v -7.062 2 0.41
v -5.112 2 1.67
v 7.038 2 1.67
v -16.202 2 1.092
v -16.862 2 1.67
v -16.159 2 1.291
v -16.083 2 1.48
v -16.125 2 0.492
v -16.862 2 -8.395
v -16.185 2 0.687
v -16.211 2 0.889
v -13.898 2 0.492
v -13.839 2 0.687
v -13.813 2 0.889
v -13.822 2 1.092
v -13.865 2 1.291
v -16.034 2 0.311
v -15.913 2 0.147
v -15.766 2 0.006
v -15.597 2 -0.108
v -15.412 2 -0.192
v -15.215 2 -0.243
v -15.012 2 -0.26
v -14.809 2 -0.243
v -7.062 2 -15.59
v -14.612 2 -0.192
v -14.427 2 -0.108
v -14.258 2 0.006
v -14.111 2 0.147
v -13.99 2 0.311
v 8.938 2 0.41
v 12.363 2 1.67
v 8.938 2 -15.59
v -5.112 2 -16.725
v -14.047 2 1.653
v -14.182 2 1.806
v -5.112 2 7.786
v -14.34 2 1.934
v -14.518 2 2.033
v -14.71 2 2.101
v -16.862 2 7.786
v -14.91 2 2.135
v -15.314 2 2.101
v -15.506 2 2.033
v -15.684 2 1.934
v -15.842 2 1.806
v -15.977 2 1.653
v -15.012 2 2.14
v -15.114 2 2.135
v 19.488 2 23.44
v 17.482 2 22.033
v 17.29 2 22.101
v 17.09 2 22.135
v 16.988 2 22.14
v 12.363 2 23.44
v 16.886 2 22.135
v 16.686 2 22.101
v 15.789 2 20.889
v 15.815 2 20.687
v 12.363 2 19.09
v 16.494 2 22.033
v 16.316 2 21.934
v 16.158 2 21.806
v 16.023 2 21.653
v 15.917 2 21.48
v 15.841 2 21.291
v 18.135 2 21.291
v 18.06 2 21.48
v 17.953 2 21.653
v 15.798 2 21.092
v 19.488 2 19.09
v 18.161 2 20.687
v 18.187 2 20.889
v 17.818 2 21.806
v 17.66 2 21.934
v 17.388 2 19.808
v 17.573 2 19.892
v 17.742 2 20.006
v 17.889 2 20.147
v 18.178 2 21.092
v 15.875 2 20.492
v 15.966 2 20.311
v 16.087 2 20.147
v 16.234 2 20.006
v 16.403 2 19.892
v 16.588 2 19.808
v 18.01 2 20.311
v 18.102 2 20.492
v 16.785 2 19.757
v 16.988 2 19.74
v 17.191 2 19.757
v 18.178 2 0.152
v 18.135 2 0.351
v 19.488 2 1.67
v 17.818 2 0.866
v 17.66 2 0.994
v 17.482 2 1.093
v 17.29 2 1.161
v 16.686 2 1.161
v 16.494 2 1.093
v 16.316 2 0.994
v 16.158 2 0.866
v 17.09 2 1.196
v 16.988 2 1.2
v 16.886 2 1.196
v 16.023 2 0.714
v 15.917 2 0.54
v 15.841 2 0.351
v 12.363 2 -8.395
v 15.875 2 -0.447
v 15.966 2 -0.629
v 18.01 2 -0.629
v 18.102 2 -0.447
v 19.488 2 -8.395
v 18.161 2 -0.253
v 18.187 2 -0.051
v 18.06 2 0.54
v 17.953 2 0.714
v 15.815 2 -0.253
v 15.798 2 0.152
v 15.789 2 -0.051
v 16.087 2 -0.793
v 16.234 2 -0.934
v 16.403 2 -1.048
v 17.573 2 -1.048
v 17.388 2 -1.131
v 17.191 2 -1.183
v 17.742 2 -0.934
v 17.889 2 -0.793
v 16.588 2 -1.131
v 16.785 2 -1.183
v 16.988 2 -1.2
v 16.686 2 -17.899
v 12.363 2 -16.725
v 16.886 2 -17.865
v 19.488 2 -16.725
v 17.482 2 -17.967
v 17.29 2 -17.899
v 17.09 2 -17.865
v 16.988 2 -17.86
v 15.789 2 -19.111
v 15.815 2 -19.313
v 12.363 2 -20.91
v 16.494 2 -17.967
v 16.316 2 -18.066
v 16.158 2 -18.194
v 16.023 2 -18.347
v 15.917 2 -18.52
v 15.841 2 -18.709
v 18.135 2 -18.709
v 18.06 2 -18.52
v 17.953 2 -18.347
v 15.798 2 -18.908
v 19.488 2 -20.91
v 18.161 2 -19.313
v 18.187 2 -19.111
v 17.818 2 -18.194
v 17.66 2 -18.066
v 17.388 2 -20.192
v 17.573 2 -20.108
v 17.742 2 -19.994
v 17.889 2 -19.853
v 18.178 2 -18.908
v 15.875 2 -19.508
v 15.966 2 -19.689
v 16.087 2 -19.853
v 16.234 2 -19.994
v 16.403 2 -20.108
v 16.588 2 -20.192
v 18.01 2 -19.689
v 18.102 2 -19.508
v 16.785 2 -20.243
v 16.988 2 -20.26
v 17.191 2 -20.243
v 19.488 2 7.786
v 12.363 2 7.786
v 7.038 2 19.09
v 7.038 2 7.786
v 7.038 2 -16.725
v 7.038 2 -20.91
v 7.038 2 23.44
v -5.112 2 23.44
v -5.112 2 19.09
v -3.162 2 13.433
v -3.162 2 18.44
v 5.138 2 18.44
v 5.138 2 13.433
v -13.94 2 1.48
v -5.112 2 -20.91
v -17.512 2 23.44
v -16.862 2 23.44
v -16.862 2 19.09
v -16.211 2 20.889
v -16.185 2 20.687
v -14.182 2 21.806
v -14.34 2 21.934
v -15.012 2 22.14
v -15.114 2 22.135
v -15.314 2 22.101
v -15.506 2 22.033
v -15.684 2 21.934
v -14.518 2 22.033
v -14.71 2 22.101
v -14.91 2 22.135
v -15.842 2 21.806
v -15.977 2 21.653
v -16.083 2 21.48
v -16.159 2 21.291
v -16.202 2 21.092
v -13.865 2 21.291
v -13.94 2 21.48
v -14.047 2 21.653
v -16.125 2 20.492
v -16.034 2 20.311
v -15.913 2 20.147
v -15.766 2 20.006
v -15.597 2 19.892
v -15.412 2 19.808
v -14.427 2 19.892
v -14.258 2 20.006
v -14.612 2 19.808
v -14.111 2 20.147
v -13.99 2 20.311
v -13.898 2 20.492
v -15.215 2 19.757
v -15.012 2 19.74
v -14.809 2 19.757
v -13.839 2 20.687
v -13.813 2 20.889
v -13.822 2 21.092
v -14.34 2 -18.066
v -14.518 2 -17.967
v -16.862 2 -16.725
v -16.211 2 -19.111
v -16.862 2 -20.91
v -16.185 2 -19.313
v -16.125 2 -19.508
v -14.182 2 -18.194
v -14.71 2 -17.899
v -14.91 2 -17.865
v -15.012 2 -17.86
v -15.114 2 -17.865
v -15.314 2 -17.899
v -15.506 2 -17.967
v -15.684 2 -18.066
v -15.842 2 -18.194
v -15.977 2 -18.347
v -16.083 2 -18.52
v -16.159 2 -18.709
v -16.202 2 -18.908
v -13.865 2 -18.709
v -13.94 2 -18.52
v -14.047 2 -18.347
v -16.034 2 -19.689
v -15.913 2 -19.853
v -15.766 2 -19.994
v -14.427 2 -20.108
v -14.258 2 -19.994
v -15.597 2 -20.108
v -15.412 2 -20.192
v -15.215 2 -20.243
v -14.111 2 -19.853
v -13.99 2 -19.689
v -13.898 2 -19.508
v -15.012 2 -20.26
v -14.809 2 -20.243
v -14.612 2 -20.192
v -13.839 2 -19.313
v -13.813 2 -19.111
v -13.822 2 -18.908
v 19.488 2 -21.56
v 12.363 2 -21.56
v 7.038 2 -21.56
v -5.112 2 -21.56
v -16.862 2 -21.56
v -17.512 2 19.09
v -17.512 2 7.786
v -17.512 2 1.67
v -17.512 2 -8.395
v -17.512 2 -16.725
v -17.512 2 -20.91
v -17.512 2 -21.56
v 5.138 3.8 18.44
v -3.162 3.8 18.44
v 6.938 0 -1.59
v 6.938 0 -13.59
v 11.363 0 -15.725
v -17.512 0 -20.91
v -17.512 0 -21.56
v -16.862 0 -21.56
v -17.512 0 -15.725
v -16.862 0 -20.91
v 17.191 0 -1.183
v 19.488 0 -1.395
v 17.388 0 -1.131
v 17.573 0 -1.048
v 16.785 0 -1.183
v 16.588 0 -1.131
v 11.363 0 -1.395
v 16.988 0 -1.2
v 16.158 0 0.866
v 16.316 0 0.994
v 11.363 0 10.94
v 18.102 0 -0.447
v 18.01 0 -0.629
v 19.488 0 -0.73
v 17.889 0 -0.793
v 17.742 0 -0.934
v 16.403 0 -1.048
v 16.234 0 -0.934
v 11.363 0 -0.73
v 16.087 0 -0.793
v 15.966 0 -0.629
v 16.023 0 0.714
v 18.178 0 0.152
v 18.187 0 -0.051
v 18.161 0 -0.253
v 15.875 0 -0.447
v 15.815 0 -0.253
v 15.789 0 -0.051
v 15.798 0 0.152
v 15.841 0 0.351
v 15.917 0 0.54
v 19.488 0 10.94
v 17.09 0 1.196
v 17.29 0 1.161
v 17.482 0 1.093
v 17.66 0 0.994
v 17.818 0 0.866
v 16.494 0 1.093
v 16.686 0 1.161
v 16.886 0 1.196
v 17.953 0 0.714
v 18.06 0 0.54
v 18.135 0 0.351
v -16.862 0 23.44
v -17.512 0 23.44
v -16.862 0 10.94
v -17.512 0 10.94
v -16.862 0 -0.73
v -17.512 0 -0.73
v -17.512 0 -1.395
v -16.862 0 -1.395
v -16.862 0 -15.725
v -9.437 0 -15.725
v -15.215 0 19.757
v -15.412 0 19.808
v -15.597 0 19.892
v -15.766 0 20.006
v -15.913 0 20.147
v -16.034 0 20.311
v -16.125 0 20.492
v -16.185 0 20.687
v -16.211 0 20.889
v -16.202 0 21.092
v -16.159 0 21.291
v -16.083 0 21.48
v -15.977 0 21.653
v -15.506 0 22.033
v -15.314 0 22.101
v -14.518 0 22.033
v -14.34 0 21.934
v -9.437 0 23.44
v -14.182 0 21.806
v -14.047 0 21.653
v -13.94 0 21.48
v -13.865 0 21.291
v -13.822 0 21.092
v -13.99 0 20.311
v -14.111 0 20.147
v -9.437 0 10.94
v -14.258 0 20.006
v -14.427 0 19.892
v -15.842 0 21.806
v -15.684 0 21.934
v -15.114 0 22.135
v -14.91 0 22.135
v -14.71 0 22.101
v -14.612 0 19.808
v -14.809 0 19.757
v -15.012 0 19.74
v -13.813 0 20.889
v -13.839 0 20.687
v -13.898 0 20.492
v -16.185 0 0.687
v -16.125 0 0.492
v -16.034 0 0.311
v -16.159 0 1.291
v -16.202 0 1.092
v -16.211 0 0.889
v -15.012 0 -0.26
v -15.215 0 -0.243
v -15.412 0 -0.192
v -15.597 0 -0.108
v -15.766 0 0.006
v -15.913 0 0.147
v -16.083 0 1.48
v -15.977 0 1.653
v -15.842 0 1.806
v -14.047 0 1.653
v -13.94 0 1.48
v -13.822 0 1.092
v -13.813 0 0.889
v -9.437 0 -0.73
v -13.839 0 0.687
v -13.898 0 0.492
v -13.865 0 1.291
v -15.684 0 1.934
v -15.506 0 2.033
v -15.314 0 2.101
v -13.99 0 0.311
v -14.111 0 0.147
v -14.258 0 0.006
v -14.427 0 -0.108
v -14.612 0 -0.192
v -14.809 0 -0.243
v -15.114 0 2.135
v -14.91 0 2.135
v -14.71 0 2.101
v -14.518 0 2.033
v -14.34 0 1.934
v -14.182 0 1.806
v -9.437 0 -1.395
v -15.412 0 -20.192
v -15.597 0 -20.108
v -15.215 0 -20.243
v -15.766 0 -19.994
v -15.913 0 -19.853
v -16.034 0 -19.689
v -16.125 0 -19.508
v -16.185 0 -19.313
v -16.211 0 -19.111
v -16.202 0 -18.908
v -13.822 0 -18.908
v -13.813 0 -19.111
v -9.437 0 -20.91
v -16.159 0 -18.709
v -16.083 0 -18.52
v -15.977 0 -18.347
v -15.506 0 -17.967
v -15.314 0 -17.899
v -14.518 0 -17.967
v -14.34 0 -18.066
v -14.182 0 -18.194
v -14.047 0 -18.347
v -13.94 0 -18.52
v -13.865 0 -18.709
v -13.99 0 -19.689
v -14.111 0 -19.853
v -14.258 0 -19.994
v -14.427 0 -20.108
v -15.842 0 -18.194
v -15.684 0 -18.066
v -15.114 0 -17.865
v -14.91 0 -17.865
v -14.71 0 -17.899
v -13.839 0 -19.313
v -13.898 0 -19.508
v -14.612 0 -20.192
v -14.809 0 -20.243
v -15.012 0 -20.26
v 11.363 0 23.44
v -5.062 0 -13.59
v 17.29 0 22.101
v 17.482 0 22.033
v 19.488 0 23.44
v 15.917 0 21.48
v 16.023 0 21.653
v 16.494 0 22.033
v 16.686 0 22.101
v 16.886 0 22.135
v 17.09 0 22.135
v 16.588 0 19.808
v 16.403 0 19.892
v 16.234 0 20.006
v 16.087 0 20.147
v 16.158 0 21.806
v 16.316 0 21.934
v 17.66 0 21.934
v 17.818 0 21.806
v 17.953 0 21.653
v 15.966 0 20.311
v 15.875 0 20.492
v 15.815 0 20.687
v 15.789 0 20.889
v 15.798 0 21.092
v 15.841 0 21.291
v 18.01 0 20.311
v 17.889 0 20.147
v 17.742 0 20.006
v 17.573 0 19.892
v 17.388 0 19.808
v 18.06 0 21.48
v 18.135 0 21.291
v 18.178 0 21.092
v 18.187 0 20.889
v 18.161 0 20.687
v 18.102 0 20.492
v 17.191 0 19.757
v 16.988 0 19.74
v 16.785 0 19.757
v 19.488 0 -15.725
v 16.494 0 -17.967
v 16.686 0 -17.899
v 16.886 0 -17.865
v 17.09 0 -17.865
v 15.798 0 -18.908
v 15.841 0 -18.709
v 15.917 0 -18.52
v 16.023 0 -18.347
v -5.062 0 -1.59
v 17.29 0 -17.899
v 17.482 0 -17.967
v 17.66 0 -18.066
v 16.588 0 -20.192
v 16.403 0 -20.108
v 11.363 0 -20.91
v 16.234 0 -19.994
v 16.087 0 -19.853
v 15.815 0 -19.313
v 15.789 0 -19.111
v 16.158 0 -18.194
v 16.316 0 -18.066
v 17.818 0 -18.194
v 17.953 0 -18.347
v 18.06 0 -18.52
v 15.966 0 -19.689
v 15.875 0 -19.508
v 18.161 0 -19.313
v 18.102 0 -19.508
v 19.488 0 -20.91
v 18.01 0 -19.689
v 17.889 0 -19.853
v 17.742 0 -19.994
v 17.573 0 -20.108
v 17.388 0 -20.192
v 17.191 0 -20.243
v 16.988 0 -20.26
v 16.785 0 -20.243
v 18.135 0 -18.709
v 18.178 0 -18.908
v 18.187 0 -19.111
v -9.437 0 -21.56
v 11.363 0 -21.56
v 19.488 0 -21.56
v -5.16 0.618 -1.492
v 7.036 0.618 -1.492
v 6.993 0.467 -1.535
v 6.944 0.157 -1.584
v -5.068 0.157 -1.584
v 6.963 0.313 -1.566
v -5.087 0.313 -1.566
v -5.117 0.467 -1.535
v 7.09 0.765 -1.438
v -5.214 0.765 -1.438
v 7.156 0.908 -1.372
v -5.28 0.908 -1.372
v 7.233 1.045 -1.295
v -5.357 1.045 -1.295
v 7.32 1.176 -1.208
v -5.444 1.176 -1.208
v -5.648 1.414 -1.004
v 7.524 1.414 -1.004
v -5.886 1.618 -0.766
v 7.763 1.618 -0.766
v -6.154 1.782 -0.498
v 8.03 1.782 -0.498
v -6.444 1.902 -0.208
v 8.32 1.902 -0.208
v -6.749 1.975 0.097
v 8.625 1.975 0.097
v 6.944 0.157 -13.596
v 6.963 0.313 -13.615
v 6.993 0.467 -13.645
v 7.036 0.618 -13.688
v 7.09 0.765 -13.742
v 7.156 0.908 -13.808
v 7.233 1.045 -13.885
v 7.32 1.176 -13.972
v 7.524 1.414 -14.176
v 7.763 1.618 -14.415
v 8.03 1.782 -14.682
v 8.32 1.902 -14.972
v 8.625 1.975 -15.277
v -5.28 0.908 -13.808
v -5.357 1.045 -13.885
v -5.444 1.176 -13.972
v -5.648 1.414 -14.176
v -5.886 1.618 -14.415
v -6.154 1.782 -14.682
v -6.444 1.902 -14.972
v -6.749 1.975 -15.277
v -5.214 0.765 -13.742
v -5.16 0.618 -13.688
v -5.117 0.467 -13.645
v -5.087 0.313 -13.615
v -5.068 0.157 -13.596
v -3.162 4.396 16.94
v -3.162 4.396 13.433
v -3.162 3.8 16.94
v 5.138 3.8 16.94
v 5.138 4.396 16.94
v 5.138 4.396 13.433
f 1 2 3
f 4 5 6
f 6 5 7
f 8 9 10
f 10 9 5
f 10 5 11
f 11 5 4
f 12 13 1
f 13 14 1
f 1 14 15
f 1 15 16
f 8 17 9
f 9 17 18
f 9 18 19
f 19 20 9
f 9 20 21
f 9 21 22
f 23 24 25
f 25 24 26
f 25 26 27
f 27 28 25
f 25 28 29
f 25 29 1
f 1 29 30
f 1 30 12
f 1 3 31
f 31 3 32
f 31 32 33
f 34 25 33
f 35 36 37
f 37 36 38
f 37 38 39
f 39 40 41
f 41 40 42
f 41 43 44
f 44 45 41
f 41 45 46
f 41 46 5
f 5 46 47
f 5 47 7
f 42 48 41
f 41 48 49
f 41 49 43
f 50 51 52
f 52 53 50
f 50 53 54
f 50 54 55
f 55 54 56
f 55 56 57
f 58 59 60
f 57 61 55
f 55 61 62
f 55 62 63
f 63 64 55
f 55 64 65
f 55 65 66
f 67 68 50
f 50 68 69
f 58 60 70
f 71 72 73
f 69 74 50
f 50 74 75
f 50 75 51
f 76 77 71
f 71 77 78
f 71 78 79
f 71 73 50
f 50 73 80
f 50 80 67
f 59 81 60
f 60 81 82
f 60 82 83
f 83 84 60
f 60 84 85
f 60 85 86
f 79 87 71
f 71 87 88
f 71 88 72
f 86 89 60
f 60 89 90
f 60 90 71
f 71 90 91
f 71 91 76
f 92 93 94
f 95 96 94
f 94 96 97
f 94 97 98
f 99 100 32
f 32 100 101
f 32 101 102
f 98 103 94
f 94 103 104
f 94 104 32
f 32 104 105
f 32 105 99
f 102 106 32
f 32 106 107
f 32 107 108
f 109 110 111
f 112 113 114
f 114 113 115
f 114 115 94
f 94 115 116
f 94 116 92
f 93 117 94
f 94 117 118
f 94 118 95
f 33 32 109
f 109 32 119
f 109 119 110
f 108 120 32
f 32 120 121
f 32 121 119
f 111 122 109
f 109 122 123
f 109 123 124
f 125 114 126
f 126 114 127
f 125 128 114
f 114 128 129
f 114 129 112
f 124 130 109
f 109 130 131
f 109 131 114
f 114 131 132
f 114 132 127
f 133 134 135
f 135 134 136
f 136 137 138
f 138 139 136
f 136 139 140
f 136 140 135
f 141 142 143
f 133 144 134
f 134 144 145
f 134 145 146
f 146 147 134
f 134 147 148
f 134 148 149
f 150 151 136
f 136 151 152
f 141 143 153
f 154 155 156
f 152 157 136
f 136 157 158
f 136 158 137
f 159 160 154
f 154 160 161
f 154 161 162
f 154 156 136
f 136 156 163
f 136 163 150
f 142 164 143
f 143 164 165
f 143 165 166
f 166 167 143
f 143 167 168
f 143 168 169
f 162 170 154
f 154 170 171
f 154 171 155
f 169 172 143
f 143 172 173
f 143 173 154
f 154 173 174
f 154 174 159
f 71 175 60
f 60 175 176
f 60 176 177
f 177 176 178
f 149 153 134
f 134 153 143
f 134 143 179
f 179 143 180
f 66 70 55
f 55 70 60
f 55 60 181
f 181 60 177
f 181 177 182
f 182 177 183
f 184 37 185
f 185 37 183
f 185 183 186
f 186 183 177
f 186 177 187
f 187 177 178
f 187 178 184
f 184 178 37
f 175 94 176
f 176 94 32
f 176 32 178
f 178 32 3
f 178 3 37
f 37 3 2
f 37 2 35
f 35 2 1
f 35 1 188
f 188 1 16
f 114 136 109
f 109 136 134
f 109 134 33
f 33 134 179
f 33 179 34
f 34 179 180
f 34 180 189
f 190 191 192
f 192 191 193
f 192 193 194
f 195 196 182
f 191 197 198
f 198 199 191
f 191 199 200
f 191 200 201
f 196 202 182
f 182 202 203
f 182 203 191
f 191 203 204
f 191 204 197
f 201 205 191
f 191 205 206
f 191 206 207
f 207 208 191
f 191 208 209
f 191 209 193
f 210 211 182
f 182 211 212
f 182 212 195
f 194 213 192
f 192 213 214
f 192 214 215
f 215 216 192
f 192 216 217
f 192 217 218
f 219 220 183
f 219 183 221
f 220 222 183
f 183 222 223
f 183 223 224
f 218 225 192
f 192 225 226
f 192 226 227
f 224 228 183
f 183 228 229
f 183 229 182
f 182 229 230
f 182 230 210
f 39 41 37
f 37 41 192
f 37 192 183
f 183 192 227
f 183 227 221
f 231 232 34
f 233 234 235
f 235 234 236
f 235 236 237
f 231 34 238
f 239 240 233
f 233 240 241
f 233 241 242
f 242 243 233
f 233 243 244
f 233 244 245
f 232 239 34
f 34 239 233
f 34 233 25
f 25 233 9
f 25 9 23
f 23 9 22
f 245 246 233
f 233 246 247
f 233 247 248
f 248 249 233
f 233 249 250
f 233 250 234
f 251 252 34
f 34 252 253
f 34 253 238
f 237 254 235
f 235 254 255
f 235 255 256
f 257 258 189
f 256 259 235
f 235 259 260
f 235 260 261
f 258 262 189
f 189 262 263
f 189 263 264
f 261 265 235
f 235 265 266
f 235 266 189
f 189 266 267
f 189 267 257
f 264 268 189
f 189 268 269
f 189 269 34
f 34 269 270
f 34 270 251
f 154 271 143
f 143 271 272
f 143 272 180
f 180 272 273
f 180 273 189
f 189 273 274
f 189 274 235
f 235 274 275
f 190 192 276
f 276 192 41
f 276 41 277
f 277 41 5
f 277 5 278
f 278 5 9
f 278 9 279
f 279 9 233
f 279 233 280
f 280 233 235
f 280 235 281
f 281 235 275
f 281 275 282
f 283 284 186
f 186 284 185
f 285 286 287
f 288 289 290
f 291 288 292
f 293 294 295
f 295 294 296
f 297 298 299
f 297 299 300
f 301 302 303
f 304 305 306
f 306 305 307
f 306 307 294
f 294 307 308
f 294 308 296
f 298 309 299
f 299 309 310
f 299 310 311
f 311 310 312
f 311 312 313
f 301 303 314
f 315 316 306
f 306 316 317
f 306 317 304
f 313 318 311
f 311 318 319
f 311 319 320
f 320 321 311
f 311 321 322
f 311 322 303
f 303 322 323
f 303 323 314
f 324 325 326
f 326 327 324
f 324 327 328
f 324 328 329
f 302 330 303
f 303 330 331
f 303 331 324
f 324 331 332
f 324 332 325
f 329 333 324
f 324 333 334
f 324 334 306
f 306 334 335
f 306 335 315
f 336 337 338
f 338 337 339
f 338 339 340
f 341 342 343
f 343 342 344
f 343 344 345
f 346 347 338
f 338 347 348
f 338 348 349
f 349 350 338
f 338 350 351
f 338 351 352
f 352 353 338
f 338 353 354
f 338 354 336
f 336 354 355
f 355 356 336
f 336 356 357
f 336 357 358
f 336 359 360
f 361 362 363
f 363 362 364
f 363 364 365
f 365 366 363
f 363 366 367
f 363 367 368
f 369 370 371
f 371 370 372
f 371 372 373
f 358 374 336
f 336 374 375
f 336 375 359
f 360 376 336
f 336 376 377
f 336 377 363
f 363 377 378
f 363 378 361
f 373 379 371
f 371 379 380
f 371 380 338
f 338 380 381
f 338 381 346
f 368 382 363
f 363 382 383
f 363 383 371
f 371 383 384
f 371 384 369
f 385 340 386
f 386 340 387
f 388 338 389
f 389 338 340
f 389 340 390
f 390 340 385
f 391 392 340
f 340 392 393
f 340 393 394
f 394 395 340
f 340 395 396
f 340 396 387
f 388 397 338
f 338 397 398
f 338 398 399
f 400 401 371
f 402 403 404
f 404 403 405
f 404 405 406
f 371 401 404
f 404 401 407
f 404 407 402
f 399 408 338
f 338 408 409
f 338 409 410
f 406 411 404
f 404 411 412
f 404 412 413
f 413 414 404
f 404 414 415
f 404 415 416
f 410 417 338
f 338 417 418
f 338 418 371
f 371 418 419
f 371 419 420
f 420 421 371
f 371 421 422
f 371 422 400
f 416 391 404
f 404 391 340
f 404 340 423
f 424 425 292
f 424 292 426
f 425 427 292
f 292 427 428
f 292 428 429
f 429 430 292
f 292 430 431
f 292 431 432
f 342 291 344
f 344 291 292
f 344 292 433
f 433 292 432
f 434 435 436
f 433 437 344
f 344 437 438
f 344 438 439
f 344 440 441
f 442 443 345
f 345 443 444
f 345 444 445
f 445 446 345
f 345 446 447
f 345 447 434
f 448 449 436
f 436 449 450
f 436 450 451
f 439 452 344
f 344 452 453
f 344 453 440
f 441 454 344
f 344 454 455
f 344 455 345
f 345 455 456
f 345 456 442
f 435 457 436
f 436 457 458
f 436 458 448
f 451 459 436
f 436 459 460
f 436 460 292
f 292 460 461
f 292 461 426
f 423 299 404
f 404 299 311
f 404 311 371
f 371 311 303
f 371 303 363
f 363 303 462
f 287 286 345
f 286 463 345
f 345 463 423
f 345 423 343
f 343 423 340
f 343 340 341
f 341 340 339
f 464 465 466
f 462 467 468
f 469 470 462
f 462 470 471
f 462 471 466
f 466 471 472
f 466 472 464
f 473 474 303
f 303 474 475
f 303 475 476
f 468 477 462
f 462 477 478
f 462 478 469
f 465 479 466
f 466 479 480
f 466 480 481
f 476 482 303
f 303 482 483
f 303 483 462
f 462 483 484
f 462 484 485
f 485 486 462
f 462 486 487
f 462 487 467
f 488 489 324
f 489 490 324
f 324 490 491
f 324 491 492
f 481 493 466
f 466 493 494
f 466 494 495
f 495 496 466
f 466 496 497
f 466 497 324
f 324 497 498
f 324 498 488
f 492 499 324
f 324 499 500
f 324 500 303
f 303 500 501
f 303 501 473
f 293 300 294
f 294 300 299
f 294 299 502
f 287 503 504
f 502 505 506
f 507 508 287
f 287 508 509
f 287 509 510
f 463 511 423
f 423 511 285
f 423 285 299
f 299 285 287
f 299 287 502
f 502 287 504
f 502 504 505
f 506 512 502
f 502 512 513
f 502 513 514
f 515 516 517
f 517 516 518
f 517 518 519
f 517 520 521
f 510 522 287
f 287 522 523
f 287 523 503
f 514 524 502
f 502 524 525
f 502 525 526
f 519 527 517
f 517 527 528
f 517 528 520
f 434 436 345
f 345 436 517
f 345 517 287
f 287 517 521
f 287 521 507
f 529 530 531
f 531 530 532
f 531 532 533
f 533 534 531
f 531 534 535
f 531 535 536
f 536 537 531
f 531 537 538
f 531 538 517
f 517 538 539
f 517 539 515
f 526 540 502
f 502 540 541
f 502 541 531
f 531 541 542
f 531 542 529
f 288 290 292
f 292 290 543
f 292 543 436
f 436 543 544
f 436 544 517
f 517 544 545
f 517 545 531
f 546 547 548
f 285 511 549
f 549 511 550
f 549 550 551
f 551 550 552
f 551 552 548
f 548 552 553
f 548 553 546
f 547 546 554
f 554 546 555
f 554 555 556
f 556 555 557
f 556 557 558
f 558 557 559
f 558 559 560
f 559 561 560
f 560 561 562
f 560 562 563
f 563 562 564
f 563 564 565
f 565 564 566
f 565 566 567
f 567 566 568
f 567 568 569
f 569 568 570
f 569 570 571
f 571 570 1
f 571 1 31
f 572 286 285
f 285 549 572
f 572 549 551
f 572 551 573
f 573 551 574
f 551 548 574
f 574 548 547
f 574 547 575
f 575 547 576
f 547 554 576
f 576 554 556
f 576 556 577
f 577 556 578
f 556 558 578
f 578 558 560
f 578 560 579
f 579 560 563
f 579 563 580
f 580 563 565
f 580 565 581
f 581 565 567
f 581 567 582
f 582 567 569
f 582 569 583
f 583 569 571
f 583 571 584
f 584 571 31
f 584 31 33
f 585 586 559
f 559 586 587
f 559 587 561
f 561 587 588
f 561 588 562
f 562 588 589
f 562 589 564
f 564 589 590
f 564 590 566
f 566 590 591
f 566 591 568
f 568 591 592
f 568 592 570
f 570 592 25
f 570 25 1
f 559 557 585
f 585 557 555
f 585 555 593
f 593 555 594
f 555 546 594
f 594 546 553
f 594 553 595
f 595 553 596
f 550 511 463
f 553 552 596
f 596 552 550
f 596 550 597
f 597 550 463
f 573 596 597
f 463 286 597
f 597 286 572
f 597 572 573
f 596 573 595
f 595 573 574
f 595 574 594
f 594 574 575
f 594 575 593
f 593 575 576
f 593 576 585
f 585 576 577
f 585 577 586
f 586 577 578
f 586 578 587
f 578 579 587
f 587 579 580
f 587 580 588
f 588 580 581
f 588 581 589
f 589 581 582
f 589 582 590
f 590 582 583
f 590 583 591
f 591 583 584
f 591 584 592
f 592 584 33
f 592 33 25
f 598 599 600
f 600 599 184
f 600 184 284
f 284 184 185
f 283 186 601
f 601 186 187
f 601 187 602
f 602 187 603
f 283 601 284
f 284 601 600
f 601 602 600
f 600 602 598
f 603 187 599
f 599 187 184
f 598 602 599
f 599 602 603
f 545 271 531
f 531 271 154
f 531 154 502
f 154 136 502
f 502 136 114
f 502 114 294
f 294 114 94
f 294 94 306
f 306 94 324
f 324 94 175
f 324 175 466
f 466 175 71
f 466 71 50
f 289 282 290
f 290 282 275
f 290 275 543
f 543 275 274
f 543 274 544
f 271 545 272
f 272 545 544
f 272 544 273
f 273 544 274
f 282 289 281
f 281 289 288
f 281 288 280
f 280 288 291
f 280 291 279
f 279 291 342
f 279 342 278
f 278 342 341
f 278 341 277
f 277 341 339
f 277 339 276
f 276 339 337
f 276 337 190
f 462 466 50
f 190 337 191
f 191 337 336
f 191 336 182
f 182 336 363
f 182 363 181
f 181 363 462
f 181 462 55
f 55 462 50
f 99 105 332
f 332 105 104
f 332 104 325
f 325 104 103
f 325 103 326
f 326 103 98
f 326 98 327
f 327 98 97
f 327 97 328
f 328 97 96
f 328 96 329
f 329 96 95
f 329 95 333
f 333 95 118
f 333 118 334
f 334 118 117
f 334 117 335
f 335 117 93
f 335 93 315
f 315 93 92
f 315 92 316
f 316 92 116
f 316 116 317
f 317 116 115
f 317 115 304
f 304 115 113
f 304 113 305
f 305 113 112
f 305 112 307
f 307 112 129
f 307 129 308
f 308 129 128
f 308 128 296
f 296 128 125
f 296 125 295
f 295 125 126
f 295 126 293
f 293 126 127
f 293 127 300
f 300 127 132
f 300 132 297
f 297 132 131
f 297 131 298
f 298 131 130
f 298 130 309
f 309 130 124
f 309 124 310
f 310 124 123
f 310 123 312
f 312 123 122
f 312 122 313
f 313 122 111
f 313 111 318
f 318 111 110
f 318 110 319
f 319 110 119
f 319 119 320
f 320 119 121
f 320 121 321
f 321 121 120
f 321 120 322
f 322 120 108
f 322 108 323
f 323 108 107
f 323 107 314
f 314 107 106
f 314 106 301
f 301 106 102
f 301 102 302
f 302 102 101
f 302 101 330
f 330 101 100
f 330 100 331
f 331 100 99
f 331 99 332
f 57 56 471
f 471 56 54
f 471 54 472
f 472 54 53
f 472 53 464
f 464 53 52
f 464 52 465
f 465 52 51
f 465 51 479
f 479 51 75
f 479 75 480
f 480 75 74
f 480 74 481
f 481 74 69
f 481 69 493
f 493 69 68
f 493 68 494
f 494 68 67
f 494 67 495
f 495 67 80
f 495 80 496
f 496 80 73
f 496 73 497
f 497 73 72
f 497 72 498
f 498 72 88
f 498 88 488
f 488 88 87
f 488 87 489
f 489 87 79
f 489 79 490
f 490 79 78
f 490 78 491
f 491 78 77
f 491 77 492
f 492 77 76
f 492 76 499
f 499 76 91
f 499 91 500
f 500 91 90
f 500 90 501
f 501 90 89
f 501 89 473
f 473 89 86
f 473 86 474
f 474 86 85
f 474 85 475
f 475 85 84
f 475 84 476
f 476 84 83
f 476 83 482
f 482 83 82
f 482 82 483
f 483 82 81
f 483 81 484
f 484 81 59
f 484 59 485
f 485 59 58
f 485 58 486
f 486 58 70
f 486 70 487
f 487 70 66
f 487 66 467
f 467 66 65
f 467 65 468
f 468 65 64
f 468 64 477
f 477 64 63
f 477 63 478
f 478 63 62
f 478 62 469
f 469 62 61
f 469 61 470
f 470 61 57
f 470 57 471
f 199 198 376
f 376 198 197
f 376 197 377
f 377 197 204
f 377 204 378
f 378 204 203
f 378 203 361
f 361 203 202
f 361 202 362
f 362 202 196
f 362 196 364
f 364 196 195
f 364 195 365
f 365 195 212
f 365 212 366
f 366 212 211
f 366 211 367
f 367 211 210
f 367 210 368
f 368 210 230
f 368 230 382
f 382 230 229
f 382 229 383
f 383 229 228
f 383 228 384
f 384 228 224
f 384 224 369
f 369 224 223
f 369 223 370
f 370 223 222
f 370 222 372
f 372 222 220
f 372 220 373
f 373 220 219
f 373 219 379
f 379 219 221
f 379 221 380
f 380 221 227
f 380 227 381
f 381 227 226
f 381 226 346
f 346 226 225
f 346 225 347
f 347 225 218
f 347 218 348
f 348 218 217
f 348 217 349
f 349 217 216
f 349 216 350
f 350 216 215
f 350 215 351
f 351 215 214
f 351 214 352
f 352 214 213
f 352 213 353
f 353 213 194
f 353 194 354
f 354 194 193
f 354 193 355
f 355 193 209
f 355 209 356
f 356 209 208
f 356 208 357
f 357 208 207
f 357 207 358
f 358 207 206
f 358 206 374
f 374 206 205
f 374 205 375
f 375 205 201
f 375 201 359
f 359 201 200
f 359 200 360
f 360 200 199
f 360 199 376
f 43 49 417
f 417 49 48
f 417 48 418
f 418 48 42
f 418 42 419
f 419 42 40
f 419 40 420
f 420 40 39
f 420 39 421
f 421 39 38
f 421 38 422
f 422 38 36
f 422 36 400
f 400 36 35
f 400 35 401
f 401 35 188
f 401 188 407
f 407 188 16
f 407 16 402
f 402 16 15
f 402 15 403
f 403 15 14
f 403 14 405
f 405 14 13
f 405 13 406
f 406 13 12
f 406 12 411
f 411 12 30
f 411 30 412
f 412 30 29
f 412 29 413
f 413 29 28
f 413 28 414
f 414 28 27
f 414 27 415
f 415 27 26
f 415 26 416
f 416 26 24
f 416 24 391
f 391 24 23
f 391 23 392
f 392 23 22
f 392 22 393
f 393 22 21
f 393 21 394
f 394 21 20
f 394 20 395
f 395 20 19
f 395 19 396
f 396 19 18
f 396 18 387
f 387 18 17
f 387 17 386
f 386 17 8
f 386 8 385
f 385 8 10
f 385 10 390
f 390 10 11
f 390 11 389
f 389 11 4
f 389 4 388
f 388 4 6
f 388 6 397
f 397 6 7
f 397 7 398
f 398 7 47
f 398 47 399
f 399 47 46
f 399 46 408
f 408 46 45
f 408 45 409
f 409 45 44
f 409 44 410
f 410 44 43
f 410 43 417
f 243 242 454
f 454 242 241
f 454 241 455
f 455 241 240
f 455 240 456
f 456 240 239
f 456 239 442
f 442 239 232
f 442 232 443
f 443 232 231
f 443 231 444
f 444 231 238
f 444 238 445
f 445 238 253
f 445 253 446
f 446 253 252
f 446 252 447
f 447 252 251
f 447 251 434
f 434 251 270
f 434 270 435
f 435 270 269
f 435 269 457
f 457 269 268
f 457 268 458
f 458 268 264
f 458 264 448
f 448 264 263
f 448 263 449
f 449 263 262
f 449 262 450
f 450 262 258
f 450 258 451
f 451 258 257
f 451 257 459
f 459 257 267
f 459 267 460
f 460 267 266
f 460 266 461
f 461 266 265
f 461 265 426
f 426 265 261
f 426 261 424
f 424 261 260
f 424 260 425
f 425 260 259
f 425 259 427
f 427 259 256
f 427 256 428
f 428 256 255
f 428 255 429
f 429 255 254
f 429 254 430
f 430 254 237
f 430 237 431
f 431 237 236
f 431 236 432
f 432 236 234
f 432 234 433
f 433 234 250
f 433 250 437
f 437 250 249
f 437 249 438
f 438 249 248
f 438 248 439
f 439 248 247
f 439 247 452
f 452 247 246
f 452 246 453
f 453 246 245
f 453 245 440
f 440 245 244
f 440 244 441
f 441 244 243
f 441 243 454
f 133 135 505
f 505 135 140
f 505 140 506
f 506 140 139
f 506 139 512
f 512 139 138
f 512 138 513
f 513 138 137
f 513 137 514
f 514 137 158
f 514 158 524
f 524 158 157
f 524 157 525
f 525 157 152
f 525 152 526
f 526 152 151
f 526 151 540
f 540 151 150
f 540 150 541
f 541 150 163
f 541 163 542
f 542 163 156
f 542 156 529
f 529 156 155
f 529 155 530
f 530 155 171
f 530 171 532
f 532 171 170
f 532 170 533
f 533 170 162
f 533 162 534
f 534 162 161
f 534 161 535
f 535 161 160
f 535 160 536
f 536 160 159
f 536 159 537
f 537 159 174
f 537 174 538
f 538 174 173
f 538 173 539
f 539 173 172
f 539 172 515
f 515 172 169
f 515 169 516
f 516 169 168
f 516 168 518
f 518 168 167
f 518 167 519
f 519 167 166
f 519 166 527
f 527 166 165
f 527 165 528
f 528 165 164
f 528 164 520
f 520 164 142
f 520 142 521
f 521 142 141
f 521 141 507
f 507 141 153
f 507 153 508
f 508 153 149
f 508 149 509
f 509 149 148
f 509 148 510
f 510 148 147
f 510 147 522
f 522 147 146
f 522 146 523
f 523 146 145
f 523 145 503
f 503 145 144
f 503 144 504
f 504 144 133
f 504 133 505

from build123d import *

# Parameters (mm, degrees)
SKETCH1_W            = 27
SKETCH1_H            = 35
SKETCH1_R            = 1.113712744
SKETCH1_R_2          = 1.000106258
SKETCH1_R_3          = 1.174626552
SKETCH1_R_4          = 1.19920455
SKETCH1_W_2          = 8.3
SKETCH1_H_2          = 2.12
BOSS_EXTRUDE1_DEPTH  = 2
CUT_EXTRUDE2_REACH   = 25.536
SKETCH10_W           = 12
SKETCH10_H           = 12
FILLET1_R            = 2
SKETCH12_W           = 8.3
SKETCH12_H           = 1.5
BOSS_EXTRUDE5_DEPTH  = 1.8
SKETCH13_W           = 8.3
SKETCH13_H           = 3.507295064
BOSS_EXTRUDE6_DEPTH  = 2.395619389
SKETCH14_W           = 37
SKETCH14_H           = 45
SKETCH14_W_2         = 27
SKETCH14_H_2         = 35
BOSS_EXTRUDE7_DEPTH  = 2
M2_CLEARANCE_HOLE3_D = 2.4


with BuildPart() as part:
    # Sketch1 → Boss-Extrude1 (new body)
    # profile 1 of 8: a face of its own
    with BuildSketch(Plane(origin=(0, 0, 0), x_dir=(1, 0, 0), z_dir=(0, 1, 0))):
        with Locations((0.988085162, -0.939800033)):
            Rectangle(SKETCH1_W, SKETCH1_H)
        Polygon((-10.011914838, -15.939800033), (-10.011914838, 14.060199967), (11.988085162, 14.060199967), (11.988085162, -15.939800033), (5.138085162, -15.939800033), (5.138085162, -18.059800033), (-3.161914838, -18.059800033), (-3.161914838, -15.939800033), align=None, mode=Mode.SUBTRACT)
    # profile 2 of 8: a face of its own
    with BuildSketch(Plane(origin=(0, 0, 0), x_dir=(1, 0, 0), z_dir=(0, 1, 0))):
        Polygon((11.988085162, 14.060199967), (-10.011914838, 14.060199967), (-10.011914838, -15.939800033), (-3.161914838, -15.939800033), (-3.161914838, -13.819800033), (5.138085162, -13.819800033), (5.138085162, -15.939800033), (11.988085162, -15.939800033), align=None)
        with Locations((-8.011914838, -13.939800033)):
            Circle(SKETCH1_R, mode=Mode.SUBTRACT)
        with Locations((9.988085162, -14.291814947)):
            Circle(SKETCH1_R_2, mode=Mode.SUBTRACT)
        with Locations((-8.011914838, 7.560199967)):
            Circle(SKETCH1_R_3, mode=Mode.SUBTRACT)
        with Locations((9.988085162, 7.560199967)):
            Circle(SKETCH1_R_4, mode=Mode.SUBTRACT)
    # profile 3 of 8: a face of its own
    with BuildSketch(Plane(origin=(0, 0, 0), x_dir=(1, 0, 0), z_dir=(0, 1, 0))):
        with Locations((-8.011914838, 7.560199967)):
            Circle(SKETCH1_R_3)
    # profile 4 of 8: a face of its own
    with BuildSketch(Plane(origin=(0, 0, 0), x_dir=(1, 0, 0), z_dir=(0, 1, 0))):
        with Locations((9.988085162, 7.560199967)):
            Circle(SKETCH1_R_4)
    # profile 5 of 8: a face of its own
    with BuildSketch(Plane(origin=(0, 0, 0), x_dir=(1, 0, 0), z_dir=(0, 1, 0))):
        with Locations((9.988085162, -14.291814947)):
            Circle(SKETCH1_R_2)
    # profile 6 of 8: a face of its own
    with BuildSketch(Plane(origin=(0, 0, 0), x_dir=(1, 0, 0), z_dir=(0, 1, 0))):
        with Locations((0.988085162, -16.999800033)):
            Rectangle(SKETCH1_W_2, SKETCH1_H_2)
    # profile 7 of 8: a face of its own
    with BuildSketch(Plane(origin=(0, 0, 0), x_dir=(1, 0, 0), z_dir=(0, 1, 0))):
        with Locations((0.988085162, -14.879800033)):
            Rectangle(SKETCH1_W_2, SKETCH1_H_2)
    # profile 8 of 8: a face of its own
    with BuildSketch(Plane(origin=(0, 0, 0), x_dir=(1, 0, 0), z_dir=(0, 1, 0))):
        with Locations((-8.011914838, -13.939800033)):
            Circle(SKETCH1_R)
    extrude(amount=BOSS_EXTRUDE1_DEPTH)

    # Sketch10 → Cut-Extrude2 (cut, up to next)
    with BuildSketch(Plane(origin=(0, 2, 0), x_dir=(1, 0, 0), z_dir=(0, 1, 0)), mode=Mode.PRIVATE) as cut_extrude2_sk1:
        with Locations((0.938085162, 7.590199967)):
            Rectangle(SKETCH10_W, SKETCH10_H)
    cut_extrude2_tool1 = extrude(cut_extrude2_sk1.sketch, amount=-CUT_EXTRUDE2_REACH, mode=Mode.PRIVATE) & part.part
    add(cut_extrude2_tool1.solids().sort_by_distance((0.938085, 2, -7.5902))[0], mode=Mode.SUBTRACT)

    # Fillet1
    fillet1_edges = [part.edges().sort_by_distance(p)[0] for p in [
        (0.938085162, 2, -13.590199967),
        (6.938085162, 2, -7.590199967),
        (0.938085162, 2, -1.590199967),
        (-5.061914838, 2, -7.590199967),
    ]]
    fillet(fillet1_edges, radius=FILLET1_R - 0.0001)  # a hair under: the kernel refuses the full size

    # Sketch12 → Boss-Extrude5 (add)
    with BuildSketch(Plane(origin=(0, 2, 0), x_dir=(1, 0, 0), z_dir=(0, 1, 0))):
        with Locations((0.988085162, -17.689800033)):
            Rectangle(SKETCH12_W, SKETCH12_H)
    extrude(amount=BOSS_EXTRUDE5_DEPTH)

    # Sketch13 → Boss-Extrude6 (add)
    with BuildSketch(Plane(origin=(0, 2, 0), x_dir=(1, 0, 0), z_dir=(0, 1, 0))):
        with Locations((0.988085162, -15.186152501)):
            Rectangle(SKETCH13_W, SKETCH13_H)
    extrude(amount=BOSS_EXTRUDE6_DEPTH)

    # Sketch14 → Boss-Extrude7 (add)
    with BuildSketch(Plane.XZ):
        with Locations((0.988085162, 0.939800033)):
            Rectangle(SKETCH14_W, SKETCH14_H)
        with Locations((0.988085162, 0.939800033)):
            Rectangle(SKETCH14_W_2, SKETCH14_H_2, mode=Mode.SUBTRACT)
    extrude(amount=-BOSS_EXTRUDE7_DEPTH)

    # M2 Clearance Hole3 (through all)
    with Locations(Plane(origin=(0, 0, 0), x_dir=(-1, 0, 0), z_dir=(0, -1, 0))):
        with Locations((-16.988085162, 19.060199967), (15.011914838, 19.060199967), (15.011914838, -0.939800033), (15.011914838, -20.939800033), (-16.988085162, -20.939800033), (-16.988085162, -1.8e-07)):
            Hole(M2_CLEARANCE_HOLE3_D / 2)


solid = part.part
